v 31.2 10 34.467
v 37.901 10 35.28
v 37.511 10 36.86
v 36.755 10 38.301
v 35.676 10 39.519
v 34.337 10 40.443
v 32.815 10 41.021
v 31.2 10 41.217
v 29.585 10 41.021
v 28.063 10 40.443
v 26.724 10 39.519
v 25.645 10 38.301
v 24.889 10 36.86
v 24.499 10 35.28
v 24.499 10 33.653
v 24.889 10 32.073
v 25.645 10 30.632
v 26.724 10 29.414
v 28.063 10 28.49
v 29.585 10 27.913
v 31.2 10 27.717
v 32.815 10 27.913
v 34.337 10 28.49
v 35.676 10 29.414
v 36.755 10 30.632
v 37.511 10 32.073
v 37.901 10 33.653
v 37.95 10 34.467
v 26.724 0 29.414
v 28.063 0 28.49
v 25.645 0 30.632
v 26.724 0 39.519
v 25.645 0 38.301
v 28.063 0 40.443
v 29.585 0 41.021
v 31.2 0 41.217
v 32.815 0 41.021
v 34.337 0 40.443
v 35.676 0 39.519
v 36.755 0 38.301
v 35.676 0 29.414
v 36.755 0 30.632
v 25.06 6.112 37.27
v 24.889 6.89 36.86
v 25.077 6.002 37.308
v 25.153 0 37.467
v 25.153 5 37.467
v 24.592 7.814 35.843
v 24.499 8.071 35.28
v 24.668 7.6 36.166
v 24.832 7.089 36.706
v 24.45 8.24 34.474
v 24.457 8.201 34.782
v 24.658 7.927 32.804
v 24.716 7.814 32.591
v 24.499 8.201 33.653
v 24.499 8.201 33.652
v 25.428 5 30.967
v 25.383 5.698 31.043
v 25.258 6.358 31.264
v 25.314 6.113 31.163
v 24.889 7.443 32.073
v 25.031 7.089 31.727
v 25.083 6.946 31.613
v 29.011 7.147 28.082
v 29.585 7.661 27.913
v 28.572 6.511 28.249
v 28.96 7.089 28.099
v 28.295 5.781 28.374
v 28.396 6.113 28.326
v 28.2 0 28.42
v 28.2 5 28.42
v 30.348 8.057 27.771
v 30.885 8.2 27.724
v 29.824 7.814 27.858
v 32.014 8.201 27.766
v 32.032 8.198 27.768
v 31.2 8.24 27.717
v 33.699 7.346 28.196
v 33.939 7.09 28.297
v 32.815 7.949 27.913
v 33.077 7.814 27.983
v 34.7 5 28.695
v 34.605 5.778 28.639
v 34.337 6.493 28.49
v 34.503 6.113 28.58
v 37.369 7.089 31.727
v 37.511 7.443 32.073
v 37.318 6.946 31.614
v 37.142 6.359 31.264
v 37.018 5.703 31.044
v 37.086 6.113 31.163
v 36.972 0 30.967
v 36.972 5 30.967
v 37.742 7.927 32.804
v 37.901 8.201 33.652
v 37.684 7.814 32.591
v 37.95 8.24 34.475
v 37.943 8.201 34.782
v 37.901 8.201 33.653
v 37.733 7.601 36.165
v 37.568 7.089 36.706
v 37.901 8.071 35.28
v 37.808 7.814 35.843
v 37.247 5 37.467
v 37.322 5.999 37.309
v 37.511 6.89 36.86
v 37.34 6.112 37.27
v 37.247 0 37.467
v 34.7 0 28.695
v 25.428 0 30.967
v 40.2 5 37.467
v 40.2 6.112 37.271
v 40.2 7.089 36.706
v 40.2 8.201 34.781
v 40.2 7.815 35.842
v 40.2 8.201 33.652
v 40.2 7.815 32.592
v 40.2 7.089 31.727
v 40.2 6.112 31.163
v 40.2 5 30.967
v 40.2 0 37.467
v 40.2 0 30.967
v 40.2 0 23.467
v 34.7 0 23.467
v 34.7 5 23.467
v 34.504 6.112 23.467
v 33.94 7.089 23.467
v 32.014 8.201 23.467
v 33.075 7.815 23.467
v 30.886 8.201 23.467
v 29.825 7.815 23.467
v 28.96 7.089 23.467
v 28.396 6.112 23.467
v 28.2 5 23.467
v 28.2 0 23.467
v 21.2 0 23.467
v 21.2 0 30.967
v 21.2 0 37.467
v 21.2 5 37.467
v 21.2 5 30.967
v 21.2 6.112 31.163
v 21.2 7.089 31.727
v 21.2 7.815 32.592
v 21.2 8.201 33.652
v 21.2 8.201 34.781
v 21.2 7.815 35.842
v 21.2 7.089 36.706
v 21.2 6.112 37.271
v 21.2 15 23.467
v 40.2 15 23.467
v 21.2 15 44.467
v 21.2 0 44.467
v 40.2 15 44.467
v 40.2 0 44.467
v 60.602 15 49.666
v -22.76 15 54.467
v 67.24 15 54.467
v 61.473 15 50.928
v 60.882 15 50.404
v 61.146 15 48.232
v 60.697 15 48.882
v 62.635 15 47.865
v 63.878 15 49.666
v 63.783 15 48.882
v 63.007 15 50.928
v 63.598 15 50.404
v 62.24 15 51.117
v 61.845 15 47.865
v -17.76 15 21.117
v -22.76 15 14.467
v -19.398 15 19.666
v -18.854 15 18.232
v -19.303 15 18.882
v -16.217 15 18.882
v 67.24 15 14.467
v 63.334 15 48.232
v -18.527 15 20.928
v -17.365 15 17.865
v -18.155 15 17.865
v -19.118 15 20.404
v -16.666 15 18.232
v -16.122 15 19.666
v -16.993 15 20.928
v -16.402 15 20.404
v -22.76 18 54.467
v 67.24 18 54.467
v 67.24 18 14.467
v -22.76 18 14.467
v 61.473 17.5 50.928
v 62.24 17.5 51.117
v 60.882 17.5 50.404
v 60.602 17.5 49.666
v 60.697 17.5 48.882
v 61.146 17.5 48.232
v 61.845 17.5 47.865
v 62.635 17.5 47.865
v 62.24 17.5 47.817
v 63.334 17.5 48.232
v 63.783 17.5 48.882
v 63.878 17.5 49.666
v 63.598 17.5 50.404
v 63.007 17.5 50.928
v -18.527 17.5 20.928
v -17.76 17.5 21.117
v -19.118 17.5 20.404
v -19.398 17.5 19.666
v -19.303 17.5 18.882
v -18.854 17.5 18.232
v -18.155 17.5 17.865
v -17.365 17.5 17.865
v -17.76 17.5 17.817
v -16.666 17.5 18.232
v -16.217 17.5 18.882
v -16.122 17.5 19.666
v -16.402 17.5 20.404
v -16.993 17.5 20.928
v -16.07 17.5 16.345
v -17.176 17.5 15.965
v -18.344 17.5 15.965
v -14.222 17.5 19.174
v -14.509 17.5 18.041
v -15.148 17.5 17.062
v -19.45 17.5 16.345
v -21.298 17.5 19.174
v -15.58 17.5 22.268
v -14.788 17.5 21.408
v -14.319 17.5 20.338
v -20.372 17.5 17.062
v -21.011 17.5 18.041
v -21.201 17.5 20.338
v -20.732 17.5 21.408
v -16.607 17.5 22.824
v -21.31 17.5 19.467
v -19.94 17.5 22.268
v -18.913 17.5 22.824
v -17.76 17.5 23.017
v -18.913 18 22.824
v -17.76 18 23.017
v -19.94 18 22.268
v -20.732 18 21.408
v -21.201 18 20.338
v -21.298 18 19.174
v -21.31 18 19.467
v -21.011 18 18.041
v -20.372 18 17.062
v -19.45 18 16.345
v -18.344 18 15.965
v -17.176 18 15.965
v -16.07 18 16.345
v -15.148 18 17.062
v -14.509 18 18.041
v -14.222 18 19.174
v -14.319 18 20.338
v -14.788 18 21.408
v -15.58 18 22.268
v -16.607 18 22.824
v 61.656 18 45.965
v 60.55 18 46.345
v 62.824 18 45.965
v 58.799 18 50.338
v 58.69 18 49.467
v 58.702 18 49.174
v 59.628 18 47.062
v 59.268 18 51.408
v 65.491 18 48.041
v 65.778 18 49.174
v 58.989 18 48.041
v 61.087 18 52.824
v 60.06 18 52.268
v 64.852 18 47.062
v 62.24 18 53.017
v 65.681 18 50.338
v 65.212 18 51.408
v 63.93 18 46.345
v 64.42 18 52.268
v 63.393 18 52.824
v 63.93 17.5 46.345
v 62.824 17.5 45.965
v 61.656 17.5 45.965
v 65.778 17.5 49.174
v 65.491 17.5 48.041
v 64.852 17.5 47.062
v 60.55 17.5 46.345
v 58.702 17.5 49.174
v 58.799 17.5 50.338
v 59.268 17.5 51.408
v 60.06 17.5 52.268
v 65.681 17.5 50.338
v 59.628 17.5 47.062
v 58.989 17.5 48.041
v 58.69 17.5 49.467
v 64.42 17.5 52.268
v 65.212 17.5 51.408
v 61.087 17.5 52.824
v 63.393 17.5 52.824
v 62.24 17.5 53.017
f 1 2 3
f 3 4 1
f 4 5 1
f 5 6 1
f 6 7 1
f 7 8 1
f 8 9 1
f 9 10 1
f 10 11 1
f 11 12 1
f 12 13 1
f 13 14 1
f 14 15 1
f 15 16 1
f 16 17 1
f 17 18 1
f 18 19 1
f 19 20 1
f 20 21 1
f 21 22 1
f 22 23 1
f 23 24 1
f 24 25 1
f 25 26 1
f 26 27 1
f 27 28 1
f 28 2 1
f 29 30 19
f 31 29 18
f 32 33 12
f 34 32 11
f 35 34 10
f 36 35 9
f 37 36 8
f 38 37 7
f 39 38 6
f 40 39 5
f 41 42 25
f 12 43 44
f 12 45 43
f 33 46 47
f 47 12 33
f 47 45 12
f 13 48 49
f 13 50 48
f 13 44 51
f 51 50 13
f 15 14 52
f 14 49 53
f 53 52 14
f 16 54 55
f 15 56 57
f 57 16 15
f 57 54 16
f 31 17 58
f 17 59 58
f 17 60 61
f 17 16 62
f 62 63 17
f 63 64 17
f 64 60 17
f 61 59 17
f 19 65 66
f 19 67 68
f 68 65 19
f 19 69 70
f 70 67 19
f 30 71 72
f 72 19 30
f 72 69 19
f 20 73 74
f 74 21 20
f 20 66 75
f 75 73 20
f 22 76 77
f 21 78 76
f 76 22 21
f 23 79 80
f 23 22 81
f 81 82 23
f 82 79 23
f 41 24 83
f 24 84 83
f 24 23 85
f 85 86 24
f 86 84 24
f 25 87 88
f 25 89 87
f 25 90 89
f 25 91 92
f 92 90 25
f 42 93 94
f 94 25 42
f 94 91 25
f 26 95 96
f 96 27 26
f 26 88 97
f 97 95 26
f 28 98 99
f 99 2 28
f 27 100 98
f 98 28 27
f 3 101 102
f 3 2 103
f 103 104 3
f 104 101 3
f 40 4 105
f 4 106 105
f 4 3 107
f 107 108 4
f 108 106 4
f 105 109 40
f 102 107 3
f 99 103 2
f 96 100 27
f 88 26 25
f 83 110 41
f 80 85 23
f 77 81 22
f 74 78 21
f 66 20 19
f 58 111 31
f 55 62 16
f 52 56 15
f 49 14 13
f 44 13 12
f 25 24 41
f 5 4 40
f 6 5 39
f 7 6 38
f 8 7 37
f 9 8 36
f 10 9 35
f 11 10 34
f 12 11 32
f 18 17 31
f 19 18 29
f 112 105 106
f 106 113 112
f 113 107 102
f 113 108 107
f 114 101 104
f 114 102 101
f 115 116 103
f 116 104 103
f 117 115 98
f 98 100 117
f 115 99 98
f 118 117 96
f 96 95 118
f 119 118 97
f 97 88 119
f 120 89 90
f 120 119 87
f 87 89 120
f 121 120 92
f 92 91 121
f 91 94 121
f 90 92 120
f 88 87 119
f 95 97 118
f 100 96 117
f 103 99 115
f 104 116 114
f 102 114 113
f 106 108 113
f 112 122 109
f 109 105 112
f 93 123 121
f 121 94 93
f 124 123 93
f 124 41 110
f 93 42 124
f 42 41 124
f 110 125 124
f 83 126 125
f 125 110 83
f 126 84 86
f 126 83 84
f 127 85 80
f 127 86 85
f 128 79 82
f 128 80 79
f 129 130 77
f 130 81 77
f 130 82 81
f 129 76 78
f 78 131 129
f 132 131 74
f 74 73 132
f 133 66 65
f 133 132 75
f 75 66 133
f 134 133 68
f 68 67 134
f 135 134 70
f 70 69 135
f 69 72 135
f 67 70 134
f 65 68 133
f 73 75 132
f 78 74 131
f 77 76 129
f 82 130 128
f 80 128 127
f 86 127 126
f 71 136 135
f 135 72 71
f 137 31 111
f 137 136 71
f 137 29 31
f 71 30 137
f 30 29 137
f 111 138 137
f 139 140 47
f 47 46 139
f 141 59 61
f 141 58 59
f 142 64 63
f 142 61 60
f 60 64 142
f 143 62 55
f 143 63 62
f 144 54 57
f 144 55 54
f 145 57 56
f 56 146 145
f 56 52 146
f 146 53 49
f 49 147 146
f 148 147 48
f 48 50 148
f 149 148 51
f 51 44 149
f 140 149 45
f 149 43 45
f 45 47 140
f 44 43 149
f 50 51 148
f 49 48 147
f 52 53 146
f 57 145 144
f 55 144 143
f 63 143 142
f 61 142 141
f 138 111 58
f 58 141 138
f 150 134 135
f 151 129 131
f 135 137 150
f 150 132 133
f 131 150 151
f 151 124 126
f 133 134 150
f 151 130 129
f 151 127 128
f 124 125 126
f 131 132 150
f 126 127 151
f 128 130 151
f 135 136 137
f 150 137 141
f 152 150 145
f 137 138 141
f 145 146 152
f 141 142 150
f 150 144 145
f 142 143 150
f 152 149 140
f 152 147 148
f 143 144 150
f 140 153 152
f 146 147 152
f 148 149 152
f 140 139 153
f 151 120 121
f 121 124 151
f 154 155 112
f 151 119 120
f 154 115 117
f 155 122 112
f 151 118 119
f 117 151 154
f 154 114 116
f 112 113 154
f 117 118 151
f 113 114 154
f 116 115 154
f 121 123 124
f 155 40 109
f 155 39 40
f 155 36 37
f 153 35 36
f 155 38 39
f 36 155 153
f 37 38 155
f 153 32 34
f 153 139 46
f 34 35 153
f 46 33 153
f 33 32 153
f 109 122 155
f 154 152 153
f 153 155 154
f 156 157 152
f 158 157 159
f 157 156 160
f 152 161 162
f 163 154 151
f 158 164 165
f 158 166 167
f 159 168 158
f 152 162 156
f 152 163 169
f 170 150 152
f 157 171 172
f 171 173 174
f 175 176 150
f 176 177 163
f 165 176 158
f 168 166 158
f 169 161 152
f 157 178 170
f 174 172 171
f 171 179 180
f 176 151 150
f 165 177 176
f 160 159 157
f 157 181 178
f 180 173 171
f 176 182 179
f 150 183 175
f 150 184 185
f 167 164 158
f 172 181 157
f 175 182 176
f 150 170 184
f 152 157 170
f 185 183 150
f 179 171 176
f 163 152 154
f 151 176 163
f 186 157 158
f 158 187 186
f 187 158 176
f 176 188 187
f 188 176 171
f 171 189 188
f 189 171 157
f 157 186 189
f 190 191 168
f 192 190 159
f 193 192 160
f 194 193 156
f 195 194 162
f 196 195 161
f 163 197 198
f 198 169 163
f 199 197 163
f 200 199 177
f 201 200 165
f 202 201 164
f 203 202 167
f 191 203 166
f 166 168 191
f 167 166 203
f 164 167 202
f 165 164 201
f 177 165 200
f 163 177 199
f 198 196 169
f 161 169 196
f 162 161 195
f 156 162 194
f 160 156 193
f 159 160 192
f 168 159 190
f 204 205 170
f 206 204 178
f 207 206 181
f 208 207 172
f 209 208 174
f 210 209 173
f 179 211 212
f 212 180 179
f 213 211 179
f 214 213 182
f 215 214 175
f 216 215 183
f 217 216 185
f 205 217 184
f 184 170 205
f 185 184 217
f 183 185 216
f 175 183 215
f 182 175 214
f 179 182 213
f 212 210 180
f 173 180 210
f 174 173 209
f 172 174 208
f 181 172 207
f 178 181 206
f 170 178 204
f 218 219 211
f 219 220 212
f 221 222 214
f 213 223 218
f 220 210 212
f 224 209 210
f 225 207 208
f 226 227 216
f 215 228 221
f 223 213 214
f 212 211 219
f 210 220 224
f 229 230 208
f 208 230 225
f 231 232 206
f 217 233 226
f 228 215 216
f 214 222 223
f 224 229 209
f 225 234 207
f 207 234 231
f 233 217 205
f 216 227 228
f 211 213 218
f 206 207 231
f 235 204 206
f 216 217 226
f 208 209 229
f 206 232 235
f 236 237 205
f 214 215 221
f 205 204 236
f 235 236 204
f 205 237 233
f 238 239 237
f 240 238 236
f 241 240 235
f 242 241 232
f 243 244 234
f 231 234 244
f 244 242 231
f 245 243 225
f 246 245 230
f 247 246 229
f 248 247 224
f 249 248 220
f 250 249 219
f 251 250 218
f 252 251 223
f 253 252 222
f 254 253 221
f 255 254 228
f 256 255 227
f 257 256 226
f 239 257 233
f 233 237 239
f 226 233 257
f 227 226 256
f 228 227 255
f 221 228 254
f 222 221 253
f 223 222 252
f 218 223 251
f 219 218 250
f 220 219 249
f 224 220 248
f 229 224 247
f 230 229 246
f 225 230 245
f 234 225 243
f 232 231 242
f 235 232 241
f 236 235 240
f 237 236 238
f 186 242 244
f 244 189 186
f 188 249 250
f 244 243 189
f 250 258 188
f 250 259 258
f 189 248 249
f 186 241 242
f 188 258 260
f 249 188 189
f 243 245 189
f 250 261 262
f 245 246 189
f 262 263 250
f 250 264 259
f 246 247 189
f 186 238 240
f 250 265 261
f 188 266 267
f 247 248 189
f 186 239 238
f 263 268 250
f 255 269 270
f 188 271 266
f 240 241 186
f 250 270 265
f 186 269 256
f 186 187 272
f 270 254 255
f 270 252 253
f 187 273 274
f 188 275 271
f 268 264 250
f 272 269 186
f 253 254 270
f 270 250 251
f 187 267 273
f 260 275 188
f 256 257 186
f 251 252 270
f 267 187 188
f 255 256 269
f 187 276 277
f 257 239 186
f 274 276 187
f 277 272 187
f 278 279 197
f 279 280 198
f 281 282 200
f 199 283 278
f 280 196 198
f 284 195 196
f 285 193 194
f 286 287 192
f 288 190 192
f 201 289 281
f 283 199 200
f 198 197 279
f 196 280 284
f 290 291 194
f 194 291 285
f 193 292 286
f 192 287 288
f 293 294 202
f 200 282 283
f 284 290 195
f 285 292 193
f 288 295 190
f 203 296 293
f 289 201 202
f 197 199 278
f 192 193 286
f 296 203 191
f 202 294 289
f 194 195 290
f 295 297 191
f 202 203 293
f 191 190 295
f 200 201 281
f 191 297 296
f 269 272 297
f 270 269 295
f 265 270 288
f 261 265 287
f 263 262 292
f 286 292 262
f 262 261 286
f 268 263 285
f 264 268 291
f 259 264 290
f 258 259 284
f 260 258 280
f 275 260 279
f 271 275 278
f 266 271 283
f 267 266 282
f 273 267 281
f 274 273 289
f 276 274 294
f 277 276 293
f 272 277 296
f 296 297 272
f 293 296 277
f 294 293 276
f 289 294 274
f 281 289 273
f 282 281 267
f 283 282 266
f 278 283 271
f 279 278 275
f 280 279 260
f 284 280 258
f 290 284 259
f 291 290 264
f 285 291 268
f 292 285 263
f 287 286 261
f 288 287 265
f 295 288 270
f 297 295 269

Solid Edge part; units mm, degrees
sketch "Sketch1" plane through (0, 0, 0) normal (0, -1, 0) x (1, 0, 0)
  line L0 (21.2, 4.4667) -> (41.2, 4.4667)
  line L1 (41.2, 4.4667) -> (41.2, 44.4667)
  line L2 (41.2, 44.4667) -> (21.2, 44.4667)
  line L3 (21.2, 44.4667) -> (21.2, 4.4667)
  dimension "D1" = 20
  dimension "D2" = 40
extrude "Protrusion1" add sketch "Sketch1" against normal blind 15
sketch "Sketch2" plane through (31.2, 0, 24.4667) normal (0, -1, 0) x (1, 0, 0)
  circle A0 centre (0, 10) radius 6.75
  dimension "D1" = 13.5
  dimension "D2" = 10
extrude "ExtrudedCutout_1" cut sketch "Sketch2" against normal blind 10
sketch "Sketch3" plane through (21.2, 7.5, 24.4667) normal (-1, 0, 0) x (0, -1, 0)
  line L0 (7.5, 13) -> (2.5, 13)
  arc A0 (2.5, 6.5) -> (2.5, 13) centre (2.5, 9.75) cw
  line L1 (7.5, 6.5) -> (2.5, 6.5)
  line L2 (7.5, 13) -> (7.5, 6.5)
  dimension "D1" = 7
  dimension "D2" = 5
  dimension "D3" = 6.5
  dimension "D4" = 5
extrude "Cutout1" cut sketch "Sketch3" against normal through all
sketch "Sketch4" plane through (31.2, 15, 24.4667) normal (0, 1, 0) x (-1, 0, 0)
  line L0 (-10, 20) -> (-9, 20)
  line L1 (-9, 20) -> (-9, -20)
  line L2 (-9, -20) -> (-10, -20)
  line L3 (-10, -20) -> (-10, 20)
  dimension "D1" = 1
extrude "Cutout2" cut sketch "Sketch4" against normal through all
sketch "Sketch5" plane through (28.2, 7.5, 4.4667) normal (0, 0, -1) x (1, 0, 0)
  line L0 (6.5, 7.5) -> (6.5, 2.5)
  arc A0 (6.5, 2.5) -> (0, 2.5) centre (3.25, 2.5) cw
  line L1 (0, 2.5) -> (0, 7.5)
  line L2 (6.5, 7.5) -> (0, 7.5)
  dimension "D1" = 6.5
extrude "Cutout3" cut sketch "Sketch5" against normal up to next
sketch "Sketch6" plane through (28.2, 15, 24.4667) normal (0, 1, 0) x (-1, 0, 0)
  line L0 (-12, -20) -> (7, -20)
  line L1 (7, -20) -> (7, -1)
  line L2 (7, -1) -> (-12, -1)
  line L3 (-12, -1) -> (-12, -20)
  dimension "D1" = 19
extrude "Cutout4" cut sketch "Sketch6" against normal up to next
sketch "Sketch7" plane through (28.2, 15, 33.9667) normal (0, 1, 0) x (-1, 0, 0)
  line L0 (-39.04, 20.5) -> (-39.04, -19.5)
  line L1 (-39.04, -19.5) -> (50.96, -19.5)
  line L2 (50.96, 20.5) -> (50.96, -19.5)
  line L3 (-39.04, 20.5) -> (50.96, 20.5)
  dimension "D1" = 40
  dimension "D2" = 36.04
  dimension "D3" = 90
  dimension "D4" = 40
extrude "ExtrudedProtrusion_2" add sketch "Sketch7" along normal blind 3
sketch "Sketch8" plane through (19.24, 18, 34.4667) normal (0, 1, 0) x (-1, 0, 0)
  circle A0 centre (-43, 15) radius 1.65
  circle A1 centre (37, -15) radius 1.65
  dimension "D1" = 3.3
  dimension "D2" = 5
  dimension "D3" = 5
  dimension "D4" = 3.3
  dimension "D5" = 5
  dimension "D6" = 5
extrude "Cutout5" cut sketch "Sketch8" against normal through all
sketch "Sketch9" plane through (19.24, 18, 34.4667) normal (0, 1, 0) x (-1, 0, 0)
  circle A0 centre (-43, 15) radius 3.55
  circle A1 centre (37, -15) radius 3.55
extrude "ExtrudedCutout_9" cut sketch "Sketch9" against normal blind 0.5
